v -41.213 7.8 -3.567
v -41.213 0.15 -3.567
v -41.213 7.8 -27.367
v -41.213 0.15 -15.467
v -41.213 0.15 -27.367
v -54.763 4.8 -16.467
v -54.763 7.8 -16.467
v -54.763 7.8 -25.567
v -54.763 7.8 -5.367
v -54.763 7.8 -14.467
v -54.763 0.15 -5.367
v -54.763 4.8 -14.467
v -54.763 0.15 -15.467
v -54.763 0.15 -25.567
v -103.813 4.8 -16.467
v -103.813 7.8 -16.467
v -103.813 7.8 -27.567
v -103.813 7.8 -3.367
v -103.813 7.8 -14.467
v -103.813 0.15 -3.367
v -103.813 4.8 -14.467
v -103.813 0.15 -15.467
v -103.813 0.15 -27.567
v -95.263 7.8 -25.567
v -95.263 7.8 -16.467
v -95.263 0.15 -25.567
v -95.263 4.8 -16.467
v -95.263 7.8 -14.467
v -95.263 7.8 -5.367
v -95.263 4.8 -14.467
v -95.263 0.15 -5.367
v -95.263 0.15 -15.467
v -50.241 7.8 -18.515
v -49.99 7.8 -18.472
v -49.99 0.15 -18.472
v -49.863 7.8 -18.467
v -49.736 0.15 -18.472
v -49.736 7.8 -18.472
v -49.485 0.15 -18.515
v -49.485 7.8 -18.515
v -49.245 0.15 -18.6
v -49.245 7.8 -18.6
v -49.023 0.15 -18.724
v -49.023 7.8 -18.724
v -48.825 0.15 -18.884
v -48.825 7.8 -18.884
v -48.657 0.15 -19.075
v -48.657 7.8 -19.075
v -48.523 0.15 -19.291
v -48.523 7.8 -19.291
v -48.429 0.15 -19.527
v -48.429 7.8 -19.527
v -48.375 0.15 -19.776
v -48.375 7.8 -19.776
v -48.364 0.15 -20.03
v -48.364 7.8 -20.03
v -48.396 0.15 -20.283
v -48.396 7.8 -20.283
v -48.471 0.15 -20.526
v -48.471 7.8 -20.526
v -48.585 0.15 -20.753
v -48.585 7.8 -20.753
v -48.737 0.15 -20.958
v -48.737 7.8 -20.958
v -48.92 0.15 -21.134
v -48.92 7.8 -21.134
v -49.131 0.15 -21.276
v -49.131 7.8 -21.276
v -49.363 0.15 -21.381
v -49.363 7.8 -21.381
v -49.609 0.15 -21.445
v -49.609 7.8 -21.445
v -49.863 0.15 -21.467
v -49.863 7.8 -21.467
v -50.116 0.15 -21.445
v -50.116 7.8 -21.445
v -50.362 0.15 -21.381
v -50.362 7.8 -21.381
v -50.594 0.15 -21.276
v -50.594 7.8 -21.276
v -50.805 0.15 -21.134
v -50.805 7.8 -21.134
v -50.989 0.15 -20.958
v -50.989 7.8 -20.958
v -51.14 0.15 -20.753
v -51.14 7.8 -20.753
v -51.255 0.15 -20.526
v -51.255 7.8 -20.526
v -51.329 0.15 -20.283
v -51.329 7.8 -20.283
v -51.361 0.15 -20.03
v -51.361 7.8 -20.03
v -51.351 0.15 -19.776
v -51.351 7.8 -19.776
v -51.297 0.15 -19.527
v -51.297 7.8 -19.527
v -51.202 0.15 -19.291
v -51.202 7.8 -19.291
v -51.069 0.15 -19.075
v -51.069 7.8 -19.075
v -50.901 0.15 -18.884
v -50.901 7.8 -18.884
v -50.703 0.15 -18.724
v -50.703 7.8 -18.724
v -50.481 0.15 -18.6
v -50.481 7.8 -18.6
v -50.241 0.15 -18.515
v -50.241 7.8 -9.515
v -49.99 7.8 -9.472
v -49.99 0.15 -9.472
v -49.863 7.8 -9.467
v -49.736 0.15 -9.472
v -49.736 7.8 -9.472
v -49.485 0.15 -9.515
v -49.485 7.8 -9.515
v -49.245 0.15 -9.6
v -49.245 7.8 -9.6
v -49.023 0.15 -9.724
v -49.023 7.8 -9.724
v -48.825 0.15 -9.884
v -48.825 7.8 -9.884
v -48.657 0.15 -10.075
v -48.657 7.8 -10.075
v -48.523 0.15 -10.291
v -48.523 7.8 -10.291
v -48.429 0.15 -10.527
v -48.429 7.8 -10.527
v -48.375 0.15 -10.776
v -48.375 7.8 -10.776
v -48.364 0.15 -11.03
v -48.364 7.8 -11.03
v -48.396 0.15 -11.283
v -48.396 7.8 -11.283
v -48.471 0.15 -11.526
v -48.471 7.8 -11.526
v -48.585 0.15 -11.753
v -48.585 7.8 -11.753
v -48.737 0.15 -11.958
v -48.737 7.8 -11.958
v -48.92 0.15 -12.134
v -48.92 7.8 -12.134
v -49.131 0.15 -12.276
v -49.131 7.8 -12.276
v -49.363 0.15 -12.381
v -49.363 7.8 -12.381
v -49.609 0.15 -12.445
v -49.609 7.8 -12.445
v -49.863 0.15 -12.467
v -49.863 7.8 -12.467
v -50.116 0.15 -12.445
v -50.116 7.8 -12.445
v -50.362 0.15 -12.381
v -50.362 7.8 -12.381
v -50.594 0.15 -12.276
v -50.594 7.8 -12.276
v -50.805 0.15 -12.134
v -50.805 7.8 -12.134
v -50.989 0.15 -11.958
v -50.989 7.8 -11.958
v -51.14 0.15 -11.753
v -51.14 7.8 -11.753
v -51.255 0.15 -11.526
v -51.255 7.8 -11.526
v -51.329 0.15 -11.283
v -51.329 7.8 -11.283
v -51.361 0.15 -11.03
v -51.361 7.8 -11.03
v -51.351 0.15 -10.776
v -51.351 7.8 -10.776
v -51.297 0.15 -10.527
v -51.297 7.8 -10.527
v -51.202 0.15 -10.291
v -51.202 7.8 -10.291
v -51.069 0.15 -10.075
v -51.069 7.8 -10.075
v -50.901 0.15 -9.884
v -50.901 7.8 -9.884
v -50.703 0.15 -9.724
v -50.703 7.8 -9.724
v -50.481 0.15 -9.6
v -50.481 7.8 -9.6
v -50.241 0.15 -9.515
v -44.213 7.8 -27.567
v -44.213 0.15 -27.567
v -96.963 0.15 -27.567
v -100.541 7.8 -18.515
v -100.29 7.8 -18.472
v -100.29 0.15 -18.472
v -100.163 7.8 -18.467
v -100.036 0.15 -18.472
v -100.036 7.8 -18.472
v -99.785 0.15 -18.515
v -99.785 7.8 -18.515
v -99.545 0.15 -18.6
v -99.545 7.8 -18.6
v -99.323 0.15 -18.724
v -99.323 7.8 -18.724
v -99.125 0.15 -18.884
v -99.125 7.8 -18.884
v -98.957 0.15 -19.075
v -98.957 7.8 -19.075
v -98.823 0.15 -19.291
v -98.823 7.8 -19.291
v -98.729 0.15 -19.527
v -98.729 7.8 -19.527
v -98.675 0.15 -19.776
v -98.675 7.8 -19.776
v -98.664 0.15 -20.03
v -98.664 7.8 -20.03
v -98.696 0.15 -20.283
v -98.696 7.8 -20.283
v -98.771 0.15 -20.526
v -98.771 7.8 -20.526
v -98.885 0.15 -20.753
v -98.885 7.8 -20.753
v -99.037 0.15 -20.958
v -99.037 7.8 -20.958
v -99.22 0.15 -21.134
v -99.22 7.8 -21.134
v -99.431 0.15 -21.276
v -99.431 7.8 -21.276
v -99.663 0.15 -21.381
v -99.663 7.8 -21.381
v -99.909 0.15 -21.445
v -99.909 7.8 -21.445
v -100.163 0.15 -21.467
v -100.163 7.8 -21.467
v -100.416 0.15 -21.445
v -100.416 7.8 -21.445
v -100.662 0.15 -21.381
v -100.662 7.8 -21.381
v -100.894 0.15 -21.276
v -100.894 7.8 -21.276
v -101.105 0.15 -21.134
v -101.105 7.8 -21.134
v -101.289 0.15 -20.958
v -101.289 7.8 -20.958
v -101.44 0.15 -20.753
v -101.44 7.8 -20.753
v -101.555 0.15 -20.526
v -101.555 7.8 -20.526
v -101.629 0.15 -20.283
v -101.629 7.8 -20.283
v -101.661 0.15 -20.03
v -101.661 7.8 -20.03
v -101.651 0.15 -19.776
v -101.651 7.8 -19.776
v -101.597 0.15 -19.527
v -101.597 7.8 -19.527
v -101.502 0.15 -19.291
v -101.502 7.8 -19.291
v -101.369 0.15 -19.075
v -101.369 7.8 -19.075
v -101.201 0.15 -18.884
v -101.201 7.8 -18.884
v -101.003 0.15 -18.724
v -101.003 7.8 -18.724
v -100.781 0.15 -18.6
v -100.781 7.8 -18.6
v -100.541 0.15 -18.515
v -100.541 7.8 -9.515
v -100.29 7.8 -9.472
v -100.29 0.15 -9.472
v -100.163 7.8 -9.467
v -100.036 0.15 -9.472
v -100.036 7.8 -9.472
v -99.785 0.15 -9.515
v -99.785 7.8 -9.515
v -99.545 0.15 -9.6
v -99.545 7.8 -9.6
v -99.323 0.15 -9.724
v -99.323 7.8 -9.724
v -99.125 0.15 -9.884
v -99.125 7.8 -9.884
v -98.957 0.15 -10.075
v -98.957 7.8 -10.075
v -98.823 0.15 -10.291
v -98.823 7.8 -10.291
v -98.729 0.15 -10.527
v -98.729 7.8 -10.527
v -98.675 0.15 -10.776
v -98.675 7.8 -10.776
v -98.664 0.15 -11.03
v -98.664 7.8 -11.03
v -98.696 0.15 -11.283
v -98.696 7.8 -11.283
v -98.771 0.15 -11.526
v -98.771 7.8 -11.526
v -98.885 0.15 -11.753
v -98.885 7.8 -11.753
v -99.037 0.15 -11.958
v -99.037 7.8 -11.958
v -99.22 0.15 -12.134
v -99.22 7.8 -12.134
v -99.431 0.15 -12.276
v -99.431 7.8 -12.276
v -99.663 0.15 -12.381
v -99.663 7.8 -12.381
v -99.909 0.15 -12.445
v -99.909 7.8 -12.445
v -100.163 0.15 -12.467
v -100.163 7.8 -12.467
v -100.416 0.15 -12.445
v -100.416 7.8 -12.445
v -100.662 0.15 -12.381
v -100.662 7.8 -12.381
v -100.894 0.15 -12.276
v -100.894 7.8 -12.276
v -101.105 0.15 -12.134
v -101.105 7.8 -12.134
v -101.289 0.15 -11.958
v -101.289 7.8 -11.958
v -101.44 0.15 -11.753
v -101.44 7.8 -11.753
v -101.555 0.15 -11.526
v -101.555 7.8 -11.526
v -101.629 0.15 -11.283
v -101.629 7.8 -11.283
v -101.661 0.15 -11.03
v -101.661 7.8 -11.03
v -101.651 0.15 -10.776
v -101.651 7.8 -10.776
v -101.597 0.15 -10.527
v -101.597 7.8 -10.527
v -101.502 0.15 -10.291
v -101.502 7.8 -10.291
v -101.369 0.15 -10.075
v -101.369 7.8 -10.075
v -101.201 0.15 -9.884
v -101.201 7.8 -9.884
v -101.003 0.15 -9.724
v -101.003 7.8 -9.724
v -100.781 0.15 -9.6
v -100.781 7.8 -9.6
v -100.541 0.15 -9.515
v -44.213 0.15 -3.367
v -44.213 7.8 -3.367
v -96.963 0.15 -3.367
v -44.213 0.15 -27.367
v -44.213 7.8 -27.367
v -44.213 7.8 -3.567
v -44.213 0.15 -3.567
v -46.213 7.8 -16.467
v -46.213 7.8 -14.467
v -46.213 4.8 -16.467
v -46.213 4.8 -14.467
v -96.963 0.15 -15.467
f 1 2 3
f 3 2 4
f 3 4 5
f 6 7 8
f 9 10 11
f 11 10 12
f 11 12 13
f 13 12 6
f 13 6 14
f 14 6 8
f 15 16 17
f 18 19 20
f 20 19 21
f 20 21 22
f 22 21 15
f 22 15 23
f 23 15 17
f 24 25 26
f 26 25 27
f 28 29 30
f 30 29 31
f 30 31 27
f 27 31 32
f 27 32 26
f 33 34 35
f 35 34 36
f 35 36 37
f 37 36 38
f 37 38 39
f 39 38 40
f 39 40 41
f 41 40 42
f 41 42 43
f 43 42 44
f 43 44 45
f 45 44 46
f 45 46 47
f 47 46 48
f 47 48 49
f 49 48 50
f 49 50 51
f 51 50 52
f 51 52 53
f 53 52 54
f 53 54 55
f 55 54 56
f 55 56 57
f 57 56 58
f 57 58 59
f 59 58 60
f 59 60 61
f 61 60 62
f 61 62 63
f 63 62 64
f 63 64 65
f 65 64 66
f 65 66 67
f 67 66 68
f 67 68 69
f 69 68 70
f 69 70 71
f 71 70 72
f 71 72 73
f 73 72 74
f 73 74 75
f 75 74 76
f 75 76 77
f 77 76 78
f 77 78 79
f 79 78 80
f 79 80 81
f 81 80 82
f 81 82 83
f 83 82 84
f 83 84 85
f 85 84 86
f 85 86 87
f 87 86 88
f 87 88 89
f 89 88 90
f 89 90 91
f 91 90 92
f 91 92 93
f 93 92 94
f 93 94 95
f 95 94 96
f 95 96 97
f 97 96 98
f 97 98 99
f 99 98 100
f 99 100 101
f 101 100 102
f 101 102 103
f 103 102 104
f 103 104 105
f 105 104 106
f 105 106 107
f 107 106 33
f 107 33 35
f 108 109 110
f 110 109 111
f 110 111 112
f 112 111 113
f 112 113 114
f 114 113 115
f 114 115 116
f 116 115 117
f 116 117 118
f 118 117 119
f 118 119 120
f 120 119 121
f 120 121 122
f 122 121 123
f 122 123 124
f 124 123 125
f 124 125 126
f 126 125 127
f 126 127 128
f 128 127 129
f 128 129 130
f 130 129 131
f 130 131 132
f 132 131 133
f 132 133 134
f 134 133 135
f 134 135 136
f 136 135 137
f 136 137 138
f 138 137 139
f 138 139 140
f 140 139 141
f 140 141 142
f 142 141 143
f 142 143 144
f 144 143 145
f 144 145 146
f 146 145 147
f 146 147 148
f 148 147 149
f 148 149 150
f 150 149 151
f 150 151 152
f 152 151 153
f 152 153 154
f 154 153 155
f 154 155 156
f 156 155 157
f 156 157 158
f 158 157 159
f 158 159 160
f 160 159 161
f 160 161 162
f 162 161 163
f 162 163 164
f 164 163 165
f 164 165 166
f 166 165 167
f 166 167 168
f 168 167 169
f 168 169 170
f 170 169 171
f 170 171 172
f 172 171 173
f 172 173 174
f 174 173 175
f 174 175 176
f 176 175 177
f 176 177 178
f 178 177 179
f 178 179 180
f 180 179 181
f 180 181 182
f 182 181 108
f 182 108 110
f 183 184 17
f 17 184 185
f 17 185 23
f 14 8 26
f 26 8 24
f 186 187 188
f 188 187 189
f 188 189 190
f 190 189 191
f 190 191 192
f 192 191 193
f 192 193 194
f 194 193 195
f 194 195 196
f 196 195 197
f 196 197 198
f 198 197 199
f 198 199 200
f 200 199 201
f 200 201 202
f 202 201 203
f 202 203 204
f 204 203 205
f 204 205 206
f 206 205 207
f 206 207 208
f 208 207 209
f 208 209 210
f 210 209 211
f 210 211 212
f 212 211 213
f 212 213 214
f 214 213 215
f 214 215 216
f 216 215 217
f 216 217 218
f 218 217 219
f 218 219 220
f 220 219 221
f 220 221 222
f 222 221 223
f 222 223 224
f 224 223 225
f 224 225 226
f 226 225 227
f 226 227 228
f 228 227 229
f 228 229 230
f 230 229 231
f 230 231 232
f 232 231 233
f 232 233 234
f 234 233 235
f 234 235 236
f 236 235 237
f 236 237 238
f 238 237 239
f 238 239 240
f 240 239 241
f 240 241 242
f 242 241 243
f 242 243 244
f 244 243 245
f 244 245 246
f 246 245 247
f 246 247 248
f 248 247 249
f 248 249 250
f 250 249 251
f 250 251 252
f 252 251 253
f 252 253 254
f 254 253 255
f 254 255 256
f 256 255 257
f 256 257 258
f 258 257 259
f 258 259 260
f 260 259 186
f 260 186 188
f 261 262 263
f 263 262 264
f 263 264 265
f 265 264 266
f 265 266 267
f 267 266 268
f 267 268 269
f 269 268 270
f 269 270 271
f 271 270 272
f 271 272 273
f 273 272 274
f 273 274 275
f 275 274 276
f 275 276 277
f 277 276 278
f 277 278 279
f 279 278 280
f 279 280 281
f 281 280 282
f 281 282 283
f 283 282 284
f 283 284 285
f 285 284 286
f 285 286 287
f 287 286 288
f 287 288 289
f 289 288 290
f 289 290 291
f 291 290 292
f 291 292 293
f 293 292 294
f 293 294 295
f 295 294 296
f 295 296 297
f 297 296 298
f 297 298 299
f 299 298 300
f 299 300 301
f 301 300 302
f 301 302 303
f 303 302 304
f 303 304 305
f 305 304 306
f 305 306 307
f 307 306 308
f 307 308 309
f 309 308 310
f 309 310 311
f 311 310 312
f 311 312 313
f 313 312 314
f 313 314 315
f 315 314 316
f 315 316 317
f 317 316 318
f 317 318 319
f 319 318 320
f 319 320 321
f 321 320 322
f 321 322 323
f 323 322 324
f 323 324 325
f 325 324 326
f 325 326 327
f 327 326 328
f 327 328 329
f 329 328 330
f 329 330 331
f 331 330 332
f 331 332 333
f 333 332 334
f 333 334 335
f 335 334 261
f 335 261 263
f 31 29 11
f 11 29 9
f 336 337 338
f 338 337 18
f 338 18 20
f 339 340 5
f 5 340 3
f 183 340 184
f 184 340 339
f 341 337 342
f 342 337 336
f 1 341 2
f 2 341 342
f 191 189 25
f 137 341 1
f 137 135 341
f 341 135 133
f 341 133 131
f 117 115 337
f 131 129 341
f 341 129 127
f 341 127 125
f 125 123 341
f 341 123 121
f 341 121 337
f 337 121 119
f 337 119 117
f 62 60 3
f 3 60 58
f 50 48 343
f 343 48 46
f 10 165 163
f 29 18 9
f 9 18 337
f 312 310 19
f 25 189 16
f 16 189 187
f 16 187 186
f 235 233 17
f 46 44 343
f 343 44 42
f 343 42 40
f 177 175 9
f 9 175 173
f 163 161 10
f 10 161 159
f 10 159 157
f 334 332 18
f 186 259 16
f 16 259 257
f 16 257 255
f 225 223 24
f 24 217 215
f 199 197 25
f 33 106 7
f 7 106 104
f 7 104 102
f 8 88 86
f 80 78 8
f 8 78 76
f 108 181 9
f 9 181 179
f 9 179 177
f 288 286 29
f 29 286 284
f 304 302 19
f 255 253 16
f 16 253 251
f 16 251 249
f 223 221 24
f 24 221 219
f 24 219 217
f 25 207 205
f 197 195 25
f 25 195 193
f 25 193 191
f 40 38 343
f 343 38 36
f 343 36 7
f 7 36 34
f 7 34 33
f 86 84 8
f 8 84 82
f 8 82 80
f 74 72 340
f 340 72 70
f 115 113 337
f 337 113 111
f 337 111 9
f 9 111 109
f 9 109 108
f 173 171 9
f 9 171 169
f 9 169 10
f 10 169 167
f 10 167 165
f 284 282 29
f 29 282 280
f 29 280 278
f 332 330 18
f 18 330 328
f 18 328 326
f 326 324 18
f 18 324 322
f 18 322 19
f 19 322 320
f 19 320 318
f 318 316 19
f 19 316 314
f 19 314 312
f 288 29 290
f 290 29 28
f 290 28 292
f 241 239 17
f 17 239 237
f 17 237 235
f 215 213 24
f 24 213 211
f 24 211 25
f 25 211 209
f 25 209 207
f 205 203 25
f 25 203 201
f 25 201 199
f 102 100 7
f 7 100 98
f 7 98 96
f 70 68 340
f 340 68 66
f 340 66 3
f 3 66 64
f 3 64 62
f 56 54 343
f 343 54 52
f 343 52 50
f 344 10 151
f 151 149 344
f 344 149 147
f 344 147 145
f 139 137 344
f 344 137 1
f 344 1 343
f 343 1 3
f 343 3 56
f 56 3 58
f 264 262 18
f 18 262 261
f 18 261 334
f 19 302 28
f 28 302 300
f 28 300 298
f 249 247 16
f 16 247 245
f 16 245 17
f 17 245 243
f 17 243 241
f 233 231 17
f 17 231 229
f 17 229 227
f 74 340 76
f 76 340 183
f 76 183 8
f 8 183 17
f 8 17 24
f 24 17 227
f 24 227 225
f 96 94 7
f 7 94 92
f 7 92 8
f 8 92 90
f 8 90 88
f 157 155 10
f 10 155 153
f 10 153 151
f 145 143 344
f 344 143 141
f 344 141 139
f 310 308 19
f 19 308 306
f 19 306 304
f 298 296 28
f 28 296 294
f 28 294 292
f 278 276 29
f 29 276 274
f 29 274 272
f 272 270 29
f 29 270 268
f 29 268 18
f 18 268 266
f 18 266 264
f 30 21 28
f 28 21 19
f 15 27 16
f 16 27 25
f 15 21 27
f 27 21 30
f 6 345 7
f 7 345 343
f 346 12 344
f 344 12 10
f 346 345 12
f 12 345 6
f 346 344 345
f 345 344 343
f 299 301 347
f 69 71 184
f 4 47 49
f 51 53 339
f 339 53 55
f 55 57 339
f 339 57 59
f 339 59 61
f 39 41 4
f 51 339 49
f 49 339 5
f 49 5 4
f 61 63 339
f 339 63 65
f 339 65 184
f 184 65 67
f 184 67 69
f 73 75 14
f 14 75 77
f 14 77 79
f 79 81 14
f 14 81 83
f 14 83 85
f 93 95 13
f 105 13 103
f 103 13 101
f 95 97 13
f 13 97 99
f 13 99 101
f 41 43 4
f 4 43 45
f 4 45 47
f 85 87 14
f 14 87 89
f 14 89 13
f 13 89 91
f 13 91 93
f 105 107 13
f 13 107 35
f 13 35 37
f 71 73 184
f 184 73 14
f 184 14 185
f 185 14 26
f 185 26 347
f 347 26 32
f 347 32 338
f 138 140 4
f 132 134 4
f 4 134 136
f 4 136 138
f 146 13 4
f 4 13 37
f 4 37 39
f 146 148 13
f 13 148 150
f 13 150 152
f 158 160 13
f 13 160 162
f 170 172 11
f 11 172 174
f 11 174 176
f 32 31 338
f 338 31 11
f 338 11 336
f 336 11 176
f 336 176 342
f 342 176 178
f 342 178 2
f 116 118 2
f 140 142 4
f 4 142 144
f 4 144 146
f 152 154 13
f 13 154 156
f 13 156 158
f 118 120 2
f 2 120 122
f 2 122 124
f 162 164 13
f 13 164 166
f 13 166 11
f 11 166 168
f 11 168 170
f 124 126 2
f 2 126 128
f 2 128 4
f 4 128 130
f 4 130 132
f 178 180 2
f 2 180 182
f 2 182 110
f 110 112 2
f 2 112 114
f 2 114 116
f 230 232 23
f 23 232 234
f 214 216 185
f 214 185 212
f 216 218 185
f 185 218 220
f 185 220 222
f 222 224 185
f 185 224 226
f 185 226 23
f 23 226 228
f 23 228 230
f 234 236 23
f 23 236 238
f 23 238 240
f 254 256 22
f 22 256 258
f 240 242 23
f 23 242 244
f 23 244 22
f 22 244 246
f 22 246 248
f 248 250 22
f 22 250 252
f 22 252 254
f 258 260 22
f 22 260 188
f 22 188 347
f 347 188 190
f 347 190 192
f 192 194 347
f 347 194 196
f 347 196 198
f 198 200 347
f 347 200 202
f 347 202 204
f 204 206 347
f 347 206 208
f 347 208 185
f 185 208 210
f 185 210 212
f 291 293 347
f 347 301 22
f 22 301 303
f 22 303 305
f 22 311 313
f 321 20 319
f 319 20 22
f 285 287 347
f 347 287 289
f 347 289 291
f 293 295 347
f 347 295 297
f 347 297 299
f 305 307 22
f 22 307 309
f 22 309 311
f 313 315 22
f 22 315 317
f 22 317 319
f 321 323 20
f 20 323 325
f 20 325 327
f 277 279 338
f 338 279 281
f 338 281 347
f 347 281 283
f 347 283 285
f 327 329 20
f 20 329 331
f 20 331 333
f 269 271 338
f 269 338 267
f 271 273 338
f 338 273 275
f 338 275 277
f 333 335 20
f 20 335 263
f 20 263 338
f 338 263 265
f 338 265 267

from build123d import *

# Parameters (mm, degrees)
SKETCH1_R             = 1.5
BOSS_EXTRUDE1_DEPTH   = 7.8
BOSS_EXTRUDE1_2_DEPTH = 7.8
SKETCH2_W             = 2
SKETCH2_H             = 20
BOSS_EXTRUDE2_DEPTH   = 7.8
SKETCH3_W             = 8.55
SKETCH3_H             = 0.1
BOSS_EXTRUDE3_DEPTH   = 7.8
SKETCH4_W             = 57.6
SKETCH4_H             = 2
BOSS_EXTRUDE4_DEPTH   = 7.8
SKETCH5_W             = 8.55
SKETCH5_H             = 2
CUT_EXTRUDE1_DEPTH    = 3
SKETCH6_R             = 1.5
BOSS_EXTRUDE5_DEPTH   = 7.8
SKETCH7_R             = 1.5
CUT_EXTRUDE2_DEPTH    = 4
SKETCH8_W             = 24.2
SKETCH8_H             = 7.8
BOSS_EXTRUDE6_DEPTH   = 5
SKETCH10_R            = 1.5
CUT_EXTRUDE3_DEPTH    = 110.980951326
SKETCH14_W            = 3
SKETCH14_H            = 0.2
CUT_EXTRUDE5_DEPTH    = 13.8
CUT_EXTRUDE6_DEPTH    = 0.15


with BuildPart() as part:
    # Sketch1 → Boss-Extrude1 (new body)
    with BuildSketch(Plane(origin=(0, 0, 0), x_dir=(1, 0, 0), z_dir=(0, 1, 0))):
        Polygon((-54.762761852, 25.466548835), (-54.762761852, 5.466548835), (-48.212761852, 5.466548835), (-48.212761852, 12.451776091), (-48.212761852, 18.48132158), (-48.212761852, 25.466548835), align=None)
        with Locations(Location((-49.862761852, 10.966548835, 0), (0, 0, 270))):
            Circle(SKETCH1_R, mode=Mode.SUBTRACT)
        with Locations(Location((-49.862761852, 19.966548835, 0), (0, 0, 270))):
            Circle(SKETCH1_R, mode=Mode.SUBTRACT)
    extrude(amount=BOSS_EXTRUDE1_DEPTH)



with BuildPart() as body_2:
    # Sketch1 → Boss-Extrude1 2 (new body)
    with BuildSketch(Plane(origin=(0, 0, 0), x_dir=(1, 0, 0), z_dir=(0, 1, 0))):
        Polygon((-101.812761852, 18.48132158), (-101.812761852, 12.451776091), (-101.812761852, 5.466548835), (-101.212761852, 5.466548835), (-95.262761852, 5.466548835), (-95.262761852, 25.466548835), (-101.812761852, 25.466548835), (-101.812761852, 24.866548835), (-101.812761852, 21.451776091), align=None)
        with Locations(Location((-100.162761852, 10.966548835, 0), (0, 0, 270))):
            Circle(SKETCH1_R, mode=Mode.SUBTRACT)
        with Locations(Location((-100.162761852, 19.966548835, 0), (0, 0, 270))):
            Circle(SKETCH1_R, mode=Mode.SUBTRACT)
    extrude(amount=BOSS_EXTRUDE1_2_DEPTH)


with BuildPart() as part_1:
    add(part.part)

    add(body_2.part)  # Boss-Extrude2 merges body 2
    # Sketch2 → Boss-Extrude2 (add)
    with BuildSketch(Plane(origin=(0, 7.8, 0), x_dir=(1, 0, 0), z_dir=(0, 1, 0))):
        with Locations((-47.212761852, 15.466548835)):
            Rectangle(SKETCH2_W, SKETCH2_H)
        with Locations((-102.812761852, 15.466548835)):
            Rectangle(SKETCH2_W, SKETCH2_H)
    extrude(amount=-BOSS_EXTRUDE2_DEPTH)

    # Sketch3 → Boss-Extrude3 (add)
    with BuildSketch(Plane(origin=(0, 7.8, 0), x_dir=(1, 0, 0), z_dir=(0, 1, 0))):
        with Locations((-99.537761852, 5.416548835)):
            Rectangle(SKETCH3_W, SKETCH3_H)
        with Locations((-99.537761852, 25.516548835)):
            Rectangle(SKETCH3_W, SKETCH3_H)
        with Locations((-50.487761852, 25.516548835)):
            Rectangle(SKETCH3_W, SKETCH3_H)
        with Locations((-50.487761852, 5.416548835)):
            Rectangle(SKETCH3_W, SKETCH3_H)
    extrude(amount=-BOSS_EXTRUDE3_DEPTH)

    # Sketch4 → Boss-Extrude4 (add)
    with BuildSketch(Plane(origin=(0, 7.8, 0), x_dir=(1, 0, 0), z_dir=(0, 1, 0))):
        with Locations((-75.012761852, 26.566548835)):
            Rectangle(SKETCH4_W, SKETCH4_H)
        with Locations((-75.012761852, 4.366548835)):
            Rectangle(SKETCH4_W, SKETCH4_H)
    extrude(amount=-BOSS_EXTRUDE4_DEPTH)

    # Sketch5 → Cut-Extrude1 (cut)
    with BuildSketch(Plane(origin=(0, 7.8, 0), x_dir=(1, 0, 0), z_dir=(0, 1, 0))):
        with Locations((-99.537761852, 15.466548835)):
            Rectangle(SKETCH5_W, SKETCH5_H)
        with Locations((-50.487761852, 15.466548835)):
            Rectangle(SKETCH5_W, SKETCH5_H)
    extrude(amount=-CUT_EXTRUDE1_DEPTH, mode=Mode.SUBTRACT)

    # Sketch6 → Boss-Extrude5 (add)
    # profile 1 of 10: a face of its own
    with BuildSketch(Plane(origin=(0, 7.8, 0), x_dir=(1, 0, 0), z_dir=(0, 1, 0))):
        with BuildLine():
            Line((-97.660965944, 3.366548835), (-97.660965944, -0.033392238))
            ThreePointArc((-97.660965944, -0.033392238), (-97.254605431, 1.835328112), (-96.108914501, 3.366548835))
            Line((-96.108914501, 3.366548835), (-97.660965944, 3.366548835))
        make_face()
    # profile 2 of 10: a face of its own
    with BuildSketch(Plane(origin=(0, 7.8, 0), x_dir=(1, 0, 0), z_dir=(0, 1, 0))):
        with BuildLine():
            ThreePointArc((-96.108914501, 3.366548835), (-97.254605431, 1.835328112), (-97.660965944, -0.033392238))
            ThreePointArc((-97.660965944, -0.033392238), (-96.342946459, -3.215372753), (-93.160965944, -4.533392238))
            ThreePointArc((-93.160965944, -4.533392238), (-89.978985428, -3.215372753), (-88.660965944, -0.033392238))
            ThreePointArc((-88.660965944, -0.033392238), (-89.067326456, 1.835328112), (-90.213017386, 3.366548835))
            Line((-90.213017386, 3.366548835), (-96.108914501, 3.366548835))
        make_face()
        with Locations(Location((-93.160965944, -0.033392238, 0), (0, 0, 270))):
            Circle(SKETCH6_R, mode=Mode.SUBTRACT)
    # profile 3 of 10: a face of its own
    with BuildSketch(Plane(origin=(0, 7.8, 0), x_dir=(1, 0, 0), z_dir=(0, 1, 0))):
        with BuildLine():
            ThreePointArc((-88.660965944, -0.033392238), (-89.978985428, -3.215372753), (-93.160965944, -4.533392238))
            Line((-93.160965944, -4.533392238), (-77.160965417, -4.533392238))
            ThreePointArc((-77.160965417, -4.533392238), (-81.376990489, -1.606647648), (-80.108913974, 3.366548835))
            Line((-80.108913974, 3.366548835), (-90.213017386, 3.366548835))
            ThreePointArc((-90.213017386, 3.366548835), (-89.067326456, 1.835328112), (-88.660965944, -0.033392238))
        make_face()
    # profile 4 of 10: a face of its own
    with BuildSketch(Plane(origin=(0, 7.8, 0), x_dir=(1, 0, 0), z_dir=(0, 1, 0))):
        with BuildLine():
            ThreePointArc((-80.108913974, 3.366548835), (-81.376990489, -1.606647648), (-77.160965417, -4.533392238))
            ThreePointArc((-77.160965417, -4.533392238), (-73.978984901, -3.215372753), (-72.660965417, -0.033392238))
            ThreePointArc((-72.660965417, -0.033392238), (-73.067325929, 1.835328112), (-74.213016859, 3.366548835))
            Line((-74.213016859, 3.366548835), (-80.108913974, 3.366548835))
        make_face()
        with Locations(Location((-77.160965417, -0.033392238, 0), (0, 0, 270))):
            Circle(SKETCH6_R, mode=Mode.SUBTRACT)
    # profile 5 of 10: a face of its own
    with BuildSketch(Plane(origin=(0, 7.8, 0), x_dir=(1, 0, 0), z_dir=(0, 1, 0))):
        with BuildLine():
            ThreePointArc((-74.213016859, 3.366548835), (-73.067325929, 1.835328112), (-72.660965417, -0.033392238))
            Line((-72.660965417, -0.033392238), (-72.660965417, 3.366548835))
            Line((-72.660965417, 3.366548835), (-74.213016859, 3.366548835))
        make_face()
    # profile 6 of 10: a face of its own
    with BuildSketch(Plane(origin=(0, 7.8, 0), x_dir=(1, 0, 0), z_dir=(0, 1, 0))):
        with BuildLine():
            ThreePointArc((-72.660965417, 30.966605859), (-73.978984901, 34.148586374), (-77.160965417, 35.466605859))
            ThreePointArc((-77.160965417, 35.466605859), (-81.377021429, 32.539778353), (-80.108780241, 27.566548835))
            Line((-80.108780241, 27.566548835), (-74.213150592, 27.566548835))
            ThreePointArc((-74.213150592, 27.566548835), (-73.067362681, 29.097805001), (-72.660965417, 30.966605859))
        make_face()
        with Locations(Location((-77.160965417, 30.966605859, 0), (0, 0, 270))):
            Circle(SKETCH6_R, mode=Mode.SUBTRACT)
    # profile 7 of 10: a face of its own
    with BuildSketch(Plane(origin=(0, 7.8, 0), x_dir=(1, 0, 0), z_dir=(0, 1, 0))):
        with BuildLine():
            Line((-74.213150592, 27.566548835), (-72.660965417, 27.566548835))
            Line((-72.660965417, 27.566548835), (-72.660965417, 30.966605859))
            ThreePointArc((-72.660965417, 30.966605859), (-73.067362681, 29.097805001), (-74.213150592, 27.566548835))
        make_face()
    # profile 8 of 10: a face of its own
    with BuildSketch(Plane(origin=(0, 7.8, 0), x_dir=(1, 0, 0), z_dir=(0, 1, 0))):
        with BuildLine():
            Line((-77.160965417, 35.466605859), (-93.160965944, 35.466605859))
            ThreePointArc((-93.160965944, 35.466605859), (-89.978985428, 34.148586374), (-88.660965944, 30.966605859))
            ThreePointArc((-88.660965944, 30.966605859), (-89.067363208, 29.097805001), (-90.213151119, 27.566548835))
            Line((-90.213151119, 27.566548835), (-80.108780241, 27.566548835))
            ThreePointArc((-80.108780241, 27.566548835), (-81.377021429, 32.539778353), (-77.160965417, 35.466605859))
        make_face()
    # profile 9 of 10: a face of its own
    with BuildSketch(Plane(origin=(0, 7.8, 0), x_dir=(1, 0, 0), z_dir=(0, 1, 0))):
        with BuildLine():
            ThreePointArc((-93.160965944, 35.466605859), (-96.342946459, 34.148586374), (-97.660965944, 30.966605859))
            ThreePointArc((-97.660965944, 30.966605859), (-97.254568679, 29.097805001), (-96.108780768, 27.566548835))
            Line((-96.108780768, 27.566548835), (-90.213151119, 27.566548835))
            ThreePointArc((-90.213151119, 27.566548835), (-89.067363208, 29.097805001), (-88.660965944, 30.966605859))
            ThreePointArc((-88.660965944, 30.966605859), (-89.978985428, 34.148586374), (-93.160965944, 35.466605859))
        make_face()
        with Locations(Location((-93.160965944, 30.966605859, 0), (0, 0, 270))):
            Circle(SKETCH6_R, mode=Mode.SUBTRACT)
    # profile 10 of 10: a face of its own
    with BuildSketch(Plane(origin=(0, 7.8, 0), x_dir=(1, 0, 0), z_dir=(0, 1, 0))):
        with BuildLine():
            Line((-97.660965944, 30.966605859), (-97.660965944, 27.566548835))
            Line((-97.660965944, 27.566548835), (-96.108780768, 27.566548835))
            ThreePointArc((-96.108780768, 27.566548835), (-97.254568679, 29.097805001), (-97.660965944, 30.966605859))
        make_face()
    extrude(amount=-BOSS_EXTRUDE5_DEPTH)

    # Sketch7 → Cut-Extrude2 (cut)
    # profile 1 of 2: a face of its own
    with BuildSketch(Plane(origin=(0, 7.8, 0), x_dir=(1, 0, 0), z_dir=(0, 1, 0))):
        with BuildLine():
            Line((-97.660965944, 3.366548835), (-72.660965417, 3.366548835))
            Line((-72.660965417, 3.366548835), (-72.660965417, -0.033392238))
            ThreePointArc((-72.660965417, -0.033392238), (-73.978984901, -3.215372753), (-77.160965417, -4.533392238))
            Line((-77.160965417, -4.533392238), (-93.160965944, -4.533392238))
            ThreePointArc((-93.160965944, -4.533392238), (-96.342946459, -3.215372753), (-97.660965944, -0.033392238))
            Line((-97.660965944, -0.033392238), (-97.660965944, 3.366548835))
        make_face()
        with Locations(Location((-77.160965417, -0.033392238, 0), (0, 0, 270))):
            Circle(SKETCH7_R, mode=Mode.SUBTRACT)
        with Locations(Location((-93.160965944, -0.033392238, 0), (0, 0, 270))):
            Circle(SKETCH7_R, mode=Mode.SUBTRACT)
    # profile 2 of 2: a face of its own
    with BuildSketch(Plane(origin=(0, 7.8, 0), x_dir=(1, 0, 0), z_dir=(0, 1, 0))):
        with BuildLine():
            Line((-77.160965417, 35.466605859), (-93.160965944, 35.466605859))
            ThreePointArc((-93.160965944, 35.466605859), (-96.342946459, 34.148586374), (-97.660965944, 30.966605859))
            Line((-97.660965944, 30.966605859), (-97.660965944, 27.566548835))
            Line((-97.660965944, 27.566548835), (-72.660965417, 27.566548835))
            Line((-72.660965417, 27.566548835), (-72.660965417, 30.966605859))
            ThreePointArc((-72.660965417, 30.966605859), (-73.978984901, 34.148586374), (-77.160965417, 35.466605859))
        make_face()
    extrude(amount=-CUT_EXTRUDE2_DEPTH, mode=Mode.SUBTRACT)

    # Sketch8 → Boss-Extrude6 (add)
    with BuildSketch(Plane(origin=(-46.212761852, 0, 0), x_dir=(0, 0, -1), z_dir=(1, 0, 0))):
        with Locations((15.466548835, 3.9)):
            Rectangle(SKETCH8_W, SKETCH8_H)
    extrude(amount=BOSS_EXTRUDE6_DEPTH)

    # Sketch10 → Cut-Extrude3 (cut, through all)
    # profile 1 of 2: a face of its own
    with BuildSketch(Plane.XZ):
        with BuildLine():
            Line((-97.660965944, 0.033392238), (-97.660965944, -3.366548835))
            Line((-97.660965944, -3.366548835), (-72.660965417, -3.366548835))
            Line((-72.660965417, -3.366548835), (-72.660965417, 0.033392238))
            ThreePointArc((-72.660965417, 0.033392238), (-73.978984901, 3.215372753), (-77.160965417, 4.533392238))
            Line((-77.160965417, 4.533392238), (-93.160965944, 4.533392238))
            ThreePointArc((-93.160965944, 4.533392238), (-96.342946459, 3.215372753), (-97.660965944, 0.033392238))
        make_face()
        with Locations((-93.160965944, 0.033392238)):
            Circle(SKETCH10_R, mode=Mode.SUBTRACT)
        with Locations((-77.160965417, 0.033392238)):
            Circle(SKETCH10_R, mode=Mode.SUBTRACT)
    # profile 2 of 2: a face of its own
    with BuildSketch(Plane.XZ):
        with BuildLine():
            Line((-72.660965417, -27.566548835), (-97.660965944, -27.566548835))
            Line((-97.660965944, -27.566548835), (-97.660965944, -30.966605859))
            ThreePointArc((-97.660965944, -30.966605859), (-96.342946459, -34.148586374), (-93.160965944, -35.466605859))
            Line((-93.160965944, -35.466605859), (-77.160965417, -35.466605859))
            ThreePointArc((-77.160965417, -35.466605859), (-73.978984901, -34.148586374), (-72.660965417, -30.966605859))
            Line((-72.660965417, -30.966605859), (-72.660965417, -27.566548835))
        make_face()
        with Locations((-93.160965944, -30.966605859)):
            Circle(SKETCH10_R, mode=Mode.SUBTRACT)
        with Locations((-77.160965417, -30.966605859)):
            Circle(SKETCH10_R, mode=Mode.SUBTRACT)
    extrude(amount=-CUT_EXTRUDE3_DEPTH, mode=Mode.SUBTRACT)

    # Sketch14 → Cut-Extrude5 (cut)
    with BuildSketch(Plane.XZ):
        with Locations((-42.712761852, -3.466548835)):
            Rectangle(SKETCH14_W, SKETCH14_H)
        with Locations((-42.712761852, -27.466548835)):
            Rectangle(SKETCH14_W, SKETCH14_H)
    extrude(amount=-CUT_EXTRUDE5_DEPTH, mode=Mode.SUBTRACT)

    # Sketch15 → Cut-Extrude6 (cut)
    with BuildSketch(Plane.XZ):
        Polygon((-41.212761852, -3.566548835), (-44.212761852, -3.566548835), (-44.212761852, -3.366548835), (-103.812761852, -3.366548835), (-103.812761852, -27.566548835), (-44.212761852, -27.566548835), (-44.212761852, -27.366548835), (-41.212761852, -27.366548835), align=None)
    extrude(amount=-CUT_EXTRUDE6_DEPTH, mode=Mode.SUBTRACT)


solid = part_1.part
